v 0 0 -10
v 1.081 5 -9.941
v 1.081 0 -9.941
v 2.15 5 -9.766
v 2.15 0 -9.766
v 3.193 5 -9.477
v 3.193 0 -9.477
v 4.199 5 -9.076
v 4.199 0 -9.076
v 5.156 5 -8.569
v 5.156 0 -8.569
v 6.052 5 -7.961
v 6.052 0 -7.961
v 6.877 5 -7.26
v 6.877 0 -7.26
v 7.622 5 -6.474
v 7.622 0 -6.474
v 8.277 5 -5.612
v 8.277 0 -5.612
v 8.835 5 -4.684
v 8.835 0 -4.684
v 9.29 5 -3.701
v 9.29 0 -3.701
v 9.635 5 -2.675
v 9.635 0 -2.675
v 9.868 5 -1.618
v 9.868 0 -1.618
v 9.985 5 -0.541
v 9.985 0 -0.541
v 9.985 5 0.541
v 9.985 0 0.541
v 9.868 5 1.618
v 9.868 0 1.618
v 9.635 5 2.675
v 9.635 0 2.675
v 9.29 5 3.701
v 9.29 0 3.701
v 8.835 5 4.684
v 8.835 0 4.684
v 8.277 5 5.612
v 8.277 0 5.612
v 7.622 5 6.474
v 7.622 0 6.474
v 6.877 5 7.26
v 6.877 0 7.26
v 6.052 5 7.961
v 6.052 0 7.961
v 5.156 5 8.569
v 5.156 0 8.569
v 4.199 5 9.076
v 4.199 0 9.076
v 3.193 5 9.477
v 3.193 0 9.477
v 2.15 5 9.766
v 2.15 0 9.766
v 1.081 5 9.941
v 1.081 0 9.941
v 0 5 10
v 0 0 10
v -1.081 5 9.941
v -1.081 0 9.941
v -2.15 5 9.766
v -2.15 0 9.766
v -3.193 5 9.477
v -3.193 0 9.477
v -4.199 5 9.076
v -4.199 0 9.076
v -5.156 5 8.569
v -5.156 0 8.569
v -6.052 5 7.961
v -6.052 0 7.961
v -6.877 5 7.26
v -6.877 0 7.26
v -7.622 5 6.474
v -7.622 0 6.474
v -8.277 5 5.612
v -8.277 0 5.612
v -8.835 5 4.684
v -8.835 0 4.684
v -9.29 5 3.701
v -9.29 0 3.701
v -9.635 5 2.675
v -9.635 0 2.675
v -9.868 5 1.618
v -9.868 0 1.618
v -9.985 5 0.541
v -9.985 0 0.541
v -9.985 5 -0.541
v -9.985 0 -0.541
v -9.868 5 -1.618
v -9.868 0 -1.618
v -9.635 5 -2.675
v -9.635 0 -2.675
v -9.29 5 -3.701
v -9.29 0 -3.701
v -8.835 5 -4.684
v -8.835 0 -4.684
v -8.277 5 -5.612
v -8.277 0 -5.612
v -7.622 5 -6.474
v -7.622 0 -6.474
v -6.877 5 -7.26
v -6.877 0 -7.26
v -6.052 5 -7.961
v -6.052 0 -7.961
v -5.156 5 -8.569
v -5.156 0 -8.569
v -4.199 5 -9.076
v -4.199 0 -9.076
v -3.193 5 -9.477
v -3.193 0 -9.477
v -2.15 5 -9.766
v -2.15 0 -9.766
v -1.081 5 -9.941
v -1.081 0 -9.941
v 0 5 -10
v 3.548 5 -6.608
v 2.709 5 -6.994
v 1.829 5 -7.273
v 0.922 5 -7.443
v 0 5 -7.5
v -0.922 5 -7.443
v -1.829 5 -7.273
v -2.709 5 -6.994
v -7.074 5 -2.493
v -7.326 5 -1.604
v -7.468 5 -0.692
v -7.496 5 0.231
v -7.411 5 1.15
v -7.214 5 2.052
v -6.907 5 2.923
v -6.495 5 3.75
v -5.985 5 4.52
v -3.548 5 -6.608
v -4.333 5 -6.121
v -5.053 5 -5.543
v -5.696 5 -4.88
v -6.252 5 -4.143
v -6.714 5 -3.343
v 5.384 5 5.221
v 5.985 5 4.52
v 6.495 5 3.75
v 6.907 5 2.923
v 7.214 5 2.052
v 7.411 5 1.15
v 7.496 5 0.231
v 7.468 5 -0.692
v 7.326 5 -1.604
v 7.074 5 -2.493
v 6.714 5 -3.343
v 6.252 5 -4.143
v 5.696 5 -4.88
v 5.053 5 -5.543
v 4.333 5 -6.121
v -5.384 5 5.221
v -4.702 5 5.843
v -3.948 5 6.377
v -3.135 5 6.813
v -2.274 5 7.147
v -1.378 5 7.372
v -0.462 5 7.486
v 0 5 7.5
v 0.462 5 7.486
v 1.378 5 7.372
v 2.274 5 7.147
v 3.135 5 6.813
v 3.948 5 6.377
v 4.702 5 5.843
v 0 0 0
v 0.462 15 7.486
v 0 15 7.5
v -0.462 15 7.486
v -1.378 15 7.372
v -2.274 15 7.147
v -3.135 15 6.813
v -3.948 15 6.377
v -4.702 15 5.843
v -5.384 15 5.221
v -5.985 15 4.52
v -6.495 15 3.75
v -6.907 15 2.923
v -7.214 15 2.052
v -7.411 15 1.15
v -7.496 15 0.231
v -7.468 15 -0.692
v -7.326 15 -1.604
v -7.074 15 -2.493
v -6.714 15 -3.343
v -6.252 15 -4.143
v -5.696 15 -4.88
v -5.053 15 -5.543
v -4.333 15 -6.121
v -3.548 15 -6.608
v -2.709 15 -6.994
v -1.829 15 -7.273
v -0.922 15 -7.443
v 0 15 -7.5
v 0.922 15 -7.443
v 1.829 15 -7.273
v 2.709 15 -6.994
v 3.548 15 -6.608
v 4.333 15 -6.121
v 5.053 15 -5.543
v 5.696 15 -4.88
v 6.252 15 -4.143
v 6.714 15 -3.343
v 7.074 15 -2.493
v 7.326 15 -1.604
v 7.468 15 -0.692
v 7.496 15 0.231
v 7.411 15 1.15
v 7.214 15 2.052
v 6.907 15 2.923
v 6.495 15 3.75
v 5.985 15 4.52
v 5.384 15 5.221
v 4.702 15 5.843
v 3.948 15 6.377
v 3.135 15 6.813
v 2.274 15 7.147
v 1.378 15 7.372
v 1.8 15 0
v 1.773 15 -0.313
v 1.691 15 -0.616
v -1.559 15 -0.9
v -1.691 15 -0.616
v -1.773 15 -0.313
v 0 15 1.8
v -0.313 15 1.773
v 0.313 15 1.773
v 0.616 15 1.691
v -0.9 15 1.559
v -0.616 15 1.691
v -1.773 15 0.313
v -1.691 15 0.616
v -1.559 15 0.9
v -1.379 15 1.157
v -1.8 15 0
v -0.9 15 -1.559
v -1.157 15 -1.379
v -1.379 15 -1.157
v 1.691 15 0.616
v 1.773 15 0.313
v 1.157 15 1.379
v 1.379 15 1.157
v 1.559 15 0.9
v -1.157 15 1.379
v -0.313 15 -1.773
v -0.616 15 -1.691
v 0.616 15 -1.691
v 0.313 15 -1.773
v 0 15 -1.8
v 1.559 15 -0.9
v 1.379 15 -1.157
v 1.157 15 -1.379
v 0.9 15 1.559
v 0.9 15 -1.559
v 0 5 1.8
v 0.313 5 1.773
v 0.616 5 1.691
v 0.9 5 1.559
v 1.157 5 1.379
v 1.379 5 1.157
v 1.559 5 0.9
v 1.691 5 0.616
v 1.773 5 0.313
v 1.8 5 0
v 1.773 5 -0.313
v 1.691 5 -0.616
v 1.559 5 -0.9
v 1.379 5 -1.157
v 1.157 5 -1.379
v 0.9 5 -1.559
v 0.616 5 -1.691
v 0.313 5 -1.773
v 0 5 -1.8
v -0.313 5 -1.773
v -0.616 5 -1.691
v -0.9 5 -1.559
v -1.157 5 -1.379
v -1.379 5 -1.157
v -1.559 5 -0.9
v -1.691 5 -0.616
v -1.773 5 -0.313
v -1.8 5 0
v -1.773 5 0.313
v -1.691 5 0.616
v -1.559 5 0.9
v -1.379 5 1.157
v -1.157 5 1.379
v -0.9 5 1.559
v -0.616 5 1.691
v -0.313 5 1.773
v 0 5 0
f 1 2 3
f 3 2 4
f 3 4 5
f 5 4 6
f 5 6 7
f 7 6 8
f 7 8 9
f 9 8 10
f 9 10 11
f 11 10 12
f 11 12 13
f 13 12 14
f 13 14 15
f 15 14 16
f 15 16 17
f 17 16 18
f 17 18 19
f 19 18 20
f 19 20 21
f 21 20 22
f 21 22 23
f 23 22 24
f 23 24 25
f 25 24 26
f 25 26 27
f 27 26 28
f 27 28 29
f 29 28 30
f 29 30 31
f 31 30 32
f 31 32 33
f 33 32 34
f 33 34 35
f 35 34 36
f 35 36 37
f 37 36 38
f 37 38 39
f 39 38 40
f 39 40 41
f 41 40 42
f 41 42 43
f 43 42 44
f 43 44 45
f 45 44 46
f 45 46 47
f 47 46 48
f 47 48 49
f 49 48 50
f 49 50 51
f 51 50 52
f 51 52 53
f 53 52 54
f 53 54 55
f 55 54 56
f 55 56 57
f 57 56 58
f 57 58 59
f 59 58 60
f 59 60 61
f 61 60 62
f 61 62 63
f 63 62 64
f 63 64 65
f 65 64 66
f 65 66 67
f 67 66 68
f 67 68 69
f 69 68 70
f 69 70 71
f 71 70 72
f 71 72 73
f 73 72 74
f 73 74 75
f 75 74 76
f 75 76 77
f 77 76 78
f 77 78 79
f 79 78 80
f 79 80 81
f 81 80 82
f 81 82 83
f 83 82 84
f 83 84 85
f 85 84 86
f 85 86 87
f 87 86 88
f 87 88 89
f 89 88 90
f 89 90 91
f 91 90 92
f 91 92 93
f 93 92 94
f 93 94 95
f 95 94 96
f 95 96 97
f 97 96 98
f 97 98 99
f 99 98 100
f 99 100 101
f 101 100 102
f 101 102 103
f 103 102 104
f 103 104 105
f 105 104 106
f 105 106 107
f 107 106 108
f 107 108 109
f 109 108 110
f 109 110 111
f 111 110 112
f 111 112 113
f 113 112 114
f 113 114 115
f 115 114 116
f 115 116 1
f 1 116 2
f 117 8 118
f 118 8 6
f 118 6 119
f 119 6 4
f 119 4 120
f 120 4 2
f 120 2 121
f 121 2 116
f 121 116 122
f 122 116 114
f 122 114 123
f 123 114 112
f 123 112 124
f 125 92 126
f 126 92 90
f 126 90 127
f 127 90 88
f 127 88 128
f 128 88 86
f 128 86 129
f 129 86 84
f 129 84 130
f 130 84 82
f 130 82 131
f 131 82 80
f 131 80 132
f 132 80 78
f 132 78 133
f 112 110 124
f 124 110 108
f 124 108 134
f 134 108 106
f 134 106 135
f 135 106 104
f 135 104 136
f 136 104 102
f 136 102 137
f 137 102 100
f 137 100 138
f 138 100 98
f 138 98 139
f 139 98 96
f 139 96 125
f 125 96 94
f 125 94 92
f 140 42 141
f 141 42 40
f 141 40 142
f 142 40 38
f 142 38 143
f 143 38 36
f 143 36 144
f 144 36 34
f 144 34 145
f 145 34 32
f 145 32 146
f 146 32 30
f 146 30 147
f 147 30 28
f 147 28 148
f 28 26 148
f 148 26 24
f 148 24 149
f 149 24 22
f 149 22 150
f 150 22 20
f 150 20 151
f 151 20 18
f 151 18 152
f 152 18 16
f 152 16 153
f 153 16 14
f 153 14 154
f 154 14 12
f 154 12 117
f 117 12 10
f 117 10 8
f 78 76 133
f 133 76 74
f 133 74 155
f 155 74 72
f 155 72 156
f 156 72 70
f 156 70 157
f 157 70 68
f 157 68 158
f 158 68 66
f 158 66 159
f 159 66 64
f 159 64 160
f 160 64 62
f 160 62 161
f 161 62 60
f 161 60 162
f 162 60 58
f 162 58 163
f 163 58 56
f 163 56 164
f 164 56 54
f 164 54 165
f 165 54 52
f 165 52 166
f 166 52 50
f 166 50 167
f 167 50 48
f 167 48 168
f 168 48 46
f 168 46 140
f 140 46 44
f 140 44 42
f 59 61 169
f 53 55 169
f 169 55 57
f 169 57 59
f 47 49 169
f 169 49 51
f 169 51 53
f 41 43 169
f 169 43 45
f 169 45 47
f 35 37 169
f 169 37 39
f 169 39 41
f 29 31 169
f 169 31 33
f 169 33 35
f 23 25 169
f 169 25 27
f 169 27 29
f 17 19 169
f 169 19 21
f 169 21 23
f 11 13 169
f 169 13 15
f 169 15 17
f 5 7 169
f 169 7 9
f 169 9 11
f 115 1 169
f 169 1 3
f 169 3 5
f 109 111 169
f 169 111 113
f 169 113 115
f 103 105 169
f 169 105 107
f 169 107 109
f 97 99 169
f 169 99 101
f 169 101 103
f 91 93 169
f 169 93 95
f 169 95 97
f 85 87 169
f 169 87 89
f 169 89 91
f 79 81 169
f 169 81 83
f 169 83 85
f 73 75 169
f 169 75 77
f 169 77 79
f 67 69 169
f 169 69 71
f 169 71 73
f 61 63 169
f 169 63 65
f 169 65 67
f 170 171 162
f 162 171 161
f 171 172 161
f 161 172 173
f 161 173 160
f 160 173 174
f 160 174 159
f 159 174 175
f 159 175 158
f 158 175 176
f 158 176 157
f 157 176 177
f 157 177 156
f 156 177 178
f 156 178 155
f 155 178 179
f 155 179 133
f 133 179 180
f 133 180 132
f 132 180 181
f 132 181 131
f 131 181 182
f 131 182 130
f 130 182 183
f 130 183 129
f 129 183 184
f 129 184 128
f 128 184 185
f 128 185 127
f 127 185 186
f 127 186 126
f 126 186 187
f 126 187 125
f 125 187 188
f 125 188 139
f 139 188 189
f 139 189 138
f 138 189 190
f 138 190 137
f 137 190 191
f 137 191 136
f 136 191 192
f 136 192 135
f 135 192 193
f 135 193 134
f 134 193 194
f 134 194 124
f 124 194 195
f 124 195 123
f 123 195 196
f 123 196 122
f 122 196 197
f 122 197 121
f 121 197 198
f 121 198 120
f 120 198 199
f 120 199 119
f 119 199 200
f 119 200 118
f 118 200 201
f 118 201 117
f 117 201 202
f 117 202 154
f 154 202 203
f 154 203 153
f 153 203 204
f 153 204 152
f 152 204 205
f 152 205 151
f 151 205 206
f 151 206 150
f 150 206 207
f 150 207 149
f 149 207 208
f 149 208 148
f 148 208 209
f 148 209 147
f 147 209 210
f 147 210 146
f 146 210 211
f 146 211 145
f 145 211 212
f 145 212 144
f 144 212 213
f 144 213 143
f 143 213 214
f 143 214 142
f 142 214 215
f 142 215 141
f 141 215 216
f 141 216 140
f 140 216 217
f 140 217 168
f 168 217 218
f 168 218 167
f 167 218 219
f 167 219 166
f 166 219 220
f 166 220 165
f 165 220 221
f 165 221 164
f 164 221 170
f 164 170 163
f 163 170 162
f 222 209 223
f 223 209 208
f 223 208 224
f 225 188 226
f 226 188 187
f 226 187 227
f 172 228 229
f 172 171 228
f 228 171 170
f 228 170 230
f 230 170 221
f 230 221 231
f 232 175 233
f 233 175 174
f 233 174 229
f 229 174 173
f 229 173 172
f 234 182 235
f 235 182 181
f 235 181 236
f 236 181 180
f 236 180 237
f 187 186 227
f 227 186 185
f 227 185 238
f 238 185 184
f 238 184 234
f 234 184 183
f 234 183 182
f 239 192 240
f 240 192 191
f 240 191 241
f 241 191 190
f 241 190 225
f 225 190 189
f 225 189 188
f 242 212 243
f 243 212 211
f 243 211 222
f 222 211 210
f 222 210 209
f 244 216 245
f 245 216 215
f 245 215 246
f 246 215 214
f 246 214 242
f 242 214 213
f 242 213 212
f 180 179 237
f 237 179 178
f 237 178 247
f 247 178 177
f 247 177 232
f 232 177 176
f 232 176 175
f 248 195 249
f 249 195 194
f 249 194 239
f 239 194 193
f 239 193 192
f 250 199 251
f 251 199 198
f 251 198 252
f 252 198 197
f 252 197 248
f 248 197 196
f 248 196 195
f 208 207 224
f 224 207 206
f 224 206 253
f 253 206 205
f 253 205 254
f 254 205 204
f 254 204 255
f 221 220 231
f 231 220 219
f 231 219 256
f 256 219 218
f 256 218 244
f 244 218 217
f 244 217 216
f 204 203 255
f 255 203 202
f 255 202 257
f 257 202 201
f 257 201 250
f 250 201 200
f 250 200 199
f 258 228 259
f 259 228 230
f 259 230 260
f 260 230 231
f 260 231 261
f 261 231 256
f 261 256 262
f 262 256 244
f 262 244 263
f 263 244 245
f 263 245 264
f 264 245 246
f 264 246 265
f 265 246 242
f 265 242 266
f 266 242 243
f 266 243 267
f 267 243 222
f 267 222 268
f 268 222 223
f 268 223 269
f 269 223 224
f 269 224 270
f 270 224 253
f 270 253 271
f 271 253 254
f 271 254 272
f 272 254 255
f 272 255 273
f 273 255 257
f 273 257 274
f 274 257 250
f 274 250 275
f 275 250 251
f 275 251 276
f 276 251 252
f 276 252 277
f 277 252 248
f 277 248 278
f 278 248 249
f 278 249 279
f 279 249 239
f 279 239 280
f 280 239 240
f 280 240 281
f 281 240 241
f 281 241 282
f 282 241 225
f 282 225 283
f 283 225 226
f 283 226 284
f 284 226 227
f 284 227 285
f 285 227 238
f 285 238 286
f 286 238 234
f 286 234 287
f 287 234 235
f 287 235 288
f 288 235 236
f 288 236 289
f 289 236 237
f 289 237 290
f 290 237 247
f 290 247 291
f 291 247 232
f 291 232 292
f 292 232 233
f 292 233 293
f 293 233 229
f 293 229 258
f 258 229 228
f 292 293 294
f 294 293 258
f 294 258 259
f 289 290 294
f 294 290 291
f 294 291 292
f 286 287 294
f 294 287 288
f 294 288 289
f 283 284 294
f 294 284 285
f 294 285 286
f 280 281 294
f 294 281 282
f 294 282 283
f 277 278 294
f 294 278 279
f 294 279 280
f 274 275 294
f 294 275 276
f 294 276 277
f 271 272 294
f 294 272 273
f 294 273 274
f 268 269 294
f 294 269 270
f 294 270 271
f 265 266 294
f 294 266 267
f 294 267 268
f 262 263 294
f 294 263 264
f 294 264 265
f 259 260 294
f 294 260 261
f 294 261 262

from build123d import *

# Parameters (mm, degrees)
SKETCH_1_R        = 10
EXTRUDE_1_DEPTH   = 5
SKETCH_2_R        = 7.5
EXTRUDE_2_DEPTH   = 10
OTHER_START       = 5
OTHER_1_OUTLINE_R = 1.8
OTHER_1_DEPTH     = 10


# Read off the part's stored shape, not the designer's step: 高级异型孔1
with BuildPart() as part:
    # 草图1 → 凸台-拉伸1 (new body)
    with BuildSketch(Plane(origin=(0, 0, 0), x_dir=(1, 0, 0), z_dir=(0, 1, 0))):
        with Locations(Location((0, 0, 0), (0, 0, 270))):
            Circle(SKETCH_1_R)
    extrude(amount=EXTRUDE_1_DEPTH)

    # 草图2 → 凸台-拉伸2 (add)
    with BuildSketch(Plane(origin=(0, 5, 0), x_dir=(1, 0, 0), z_dir=(0, 1, 0))):
        with Locations(Location((0, 0, 0), (0, 0, 270))):
            Circle(SKETCH_2_R)
    extrude(amount=EXTRUDE_2_DEPTH)

    # 高级异型孔1 outline → 高级异型孔1 (cut)
    with BuildSketch(Plane(origin=(0, 0, 0), x_dir=(1, 0, 0), z_dir=(0, 1, 0)).offset(OTHER_START)):
        Circle(OTHER_1_OUTLINE_R)
    extrude(amount=OTHER_1_DEPTH, mode=Mode.SUBTRACT)


solid = part.part
